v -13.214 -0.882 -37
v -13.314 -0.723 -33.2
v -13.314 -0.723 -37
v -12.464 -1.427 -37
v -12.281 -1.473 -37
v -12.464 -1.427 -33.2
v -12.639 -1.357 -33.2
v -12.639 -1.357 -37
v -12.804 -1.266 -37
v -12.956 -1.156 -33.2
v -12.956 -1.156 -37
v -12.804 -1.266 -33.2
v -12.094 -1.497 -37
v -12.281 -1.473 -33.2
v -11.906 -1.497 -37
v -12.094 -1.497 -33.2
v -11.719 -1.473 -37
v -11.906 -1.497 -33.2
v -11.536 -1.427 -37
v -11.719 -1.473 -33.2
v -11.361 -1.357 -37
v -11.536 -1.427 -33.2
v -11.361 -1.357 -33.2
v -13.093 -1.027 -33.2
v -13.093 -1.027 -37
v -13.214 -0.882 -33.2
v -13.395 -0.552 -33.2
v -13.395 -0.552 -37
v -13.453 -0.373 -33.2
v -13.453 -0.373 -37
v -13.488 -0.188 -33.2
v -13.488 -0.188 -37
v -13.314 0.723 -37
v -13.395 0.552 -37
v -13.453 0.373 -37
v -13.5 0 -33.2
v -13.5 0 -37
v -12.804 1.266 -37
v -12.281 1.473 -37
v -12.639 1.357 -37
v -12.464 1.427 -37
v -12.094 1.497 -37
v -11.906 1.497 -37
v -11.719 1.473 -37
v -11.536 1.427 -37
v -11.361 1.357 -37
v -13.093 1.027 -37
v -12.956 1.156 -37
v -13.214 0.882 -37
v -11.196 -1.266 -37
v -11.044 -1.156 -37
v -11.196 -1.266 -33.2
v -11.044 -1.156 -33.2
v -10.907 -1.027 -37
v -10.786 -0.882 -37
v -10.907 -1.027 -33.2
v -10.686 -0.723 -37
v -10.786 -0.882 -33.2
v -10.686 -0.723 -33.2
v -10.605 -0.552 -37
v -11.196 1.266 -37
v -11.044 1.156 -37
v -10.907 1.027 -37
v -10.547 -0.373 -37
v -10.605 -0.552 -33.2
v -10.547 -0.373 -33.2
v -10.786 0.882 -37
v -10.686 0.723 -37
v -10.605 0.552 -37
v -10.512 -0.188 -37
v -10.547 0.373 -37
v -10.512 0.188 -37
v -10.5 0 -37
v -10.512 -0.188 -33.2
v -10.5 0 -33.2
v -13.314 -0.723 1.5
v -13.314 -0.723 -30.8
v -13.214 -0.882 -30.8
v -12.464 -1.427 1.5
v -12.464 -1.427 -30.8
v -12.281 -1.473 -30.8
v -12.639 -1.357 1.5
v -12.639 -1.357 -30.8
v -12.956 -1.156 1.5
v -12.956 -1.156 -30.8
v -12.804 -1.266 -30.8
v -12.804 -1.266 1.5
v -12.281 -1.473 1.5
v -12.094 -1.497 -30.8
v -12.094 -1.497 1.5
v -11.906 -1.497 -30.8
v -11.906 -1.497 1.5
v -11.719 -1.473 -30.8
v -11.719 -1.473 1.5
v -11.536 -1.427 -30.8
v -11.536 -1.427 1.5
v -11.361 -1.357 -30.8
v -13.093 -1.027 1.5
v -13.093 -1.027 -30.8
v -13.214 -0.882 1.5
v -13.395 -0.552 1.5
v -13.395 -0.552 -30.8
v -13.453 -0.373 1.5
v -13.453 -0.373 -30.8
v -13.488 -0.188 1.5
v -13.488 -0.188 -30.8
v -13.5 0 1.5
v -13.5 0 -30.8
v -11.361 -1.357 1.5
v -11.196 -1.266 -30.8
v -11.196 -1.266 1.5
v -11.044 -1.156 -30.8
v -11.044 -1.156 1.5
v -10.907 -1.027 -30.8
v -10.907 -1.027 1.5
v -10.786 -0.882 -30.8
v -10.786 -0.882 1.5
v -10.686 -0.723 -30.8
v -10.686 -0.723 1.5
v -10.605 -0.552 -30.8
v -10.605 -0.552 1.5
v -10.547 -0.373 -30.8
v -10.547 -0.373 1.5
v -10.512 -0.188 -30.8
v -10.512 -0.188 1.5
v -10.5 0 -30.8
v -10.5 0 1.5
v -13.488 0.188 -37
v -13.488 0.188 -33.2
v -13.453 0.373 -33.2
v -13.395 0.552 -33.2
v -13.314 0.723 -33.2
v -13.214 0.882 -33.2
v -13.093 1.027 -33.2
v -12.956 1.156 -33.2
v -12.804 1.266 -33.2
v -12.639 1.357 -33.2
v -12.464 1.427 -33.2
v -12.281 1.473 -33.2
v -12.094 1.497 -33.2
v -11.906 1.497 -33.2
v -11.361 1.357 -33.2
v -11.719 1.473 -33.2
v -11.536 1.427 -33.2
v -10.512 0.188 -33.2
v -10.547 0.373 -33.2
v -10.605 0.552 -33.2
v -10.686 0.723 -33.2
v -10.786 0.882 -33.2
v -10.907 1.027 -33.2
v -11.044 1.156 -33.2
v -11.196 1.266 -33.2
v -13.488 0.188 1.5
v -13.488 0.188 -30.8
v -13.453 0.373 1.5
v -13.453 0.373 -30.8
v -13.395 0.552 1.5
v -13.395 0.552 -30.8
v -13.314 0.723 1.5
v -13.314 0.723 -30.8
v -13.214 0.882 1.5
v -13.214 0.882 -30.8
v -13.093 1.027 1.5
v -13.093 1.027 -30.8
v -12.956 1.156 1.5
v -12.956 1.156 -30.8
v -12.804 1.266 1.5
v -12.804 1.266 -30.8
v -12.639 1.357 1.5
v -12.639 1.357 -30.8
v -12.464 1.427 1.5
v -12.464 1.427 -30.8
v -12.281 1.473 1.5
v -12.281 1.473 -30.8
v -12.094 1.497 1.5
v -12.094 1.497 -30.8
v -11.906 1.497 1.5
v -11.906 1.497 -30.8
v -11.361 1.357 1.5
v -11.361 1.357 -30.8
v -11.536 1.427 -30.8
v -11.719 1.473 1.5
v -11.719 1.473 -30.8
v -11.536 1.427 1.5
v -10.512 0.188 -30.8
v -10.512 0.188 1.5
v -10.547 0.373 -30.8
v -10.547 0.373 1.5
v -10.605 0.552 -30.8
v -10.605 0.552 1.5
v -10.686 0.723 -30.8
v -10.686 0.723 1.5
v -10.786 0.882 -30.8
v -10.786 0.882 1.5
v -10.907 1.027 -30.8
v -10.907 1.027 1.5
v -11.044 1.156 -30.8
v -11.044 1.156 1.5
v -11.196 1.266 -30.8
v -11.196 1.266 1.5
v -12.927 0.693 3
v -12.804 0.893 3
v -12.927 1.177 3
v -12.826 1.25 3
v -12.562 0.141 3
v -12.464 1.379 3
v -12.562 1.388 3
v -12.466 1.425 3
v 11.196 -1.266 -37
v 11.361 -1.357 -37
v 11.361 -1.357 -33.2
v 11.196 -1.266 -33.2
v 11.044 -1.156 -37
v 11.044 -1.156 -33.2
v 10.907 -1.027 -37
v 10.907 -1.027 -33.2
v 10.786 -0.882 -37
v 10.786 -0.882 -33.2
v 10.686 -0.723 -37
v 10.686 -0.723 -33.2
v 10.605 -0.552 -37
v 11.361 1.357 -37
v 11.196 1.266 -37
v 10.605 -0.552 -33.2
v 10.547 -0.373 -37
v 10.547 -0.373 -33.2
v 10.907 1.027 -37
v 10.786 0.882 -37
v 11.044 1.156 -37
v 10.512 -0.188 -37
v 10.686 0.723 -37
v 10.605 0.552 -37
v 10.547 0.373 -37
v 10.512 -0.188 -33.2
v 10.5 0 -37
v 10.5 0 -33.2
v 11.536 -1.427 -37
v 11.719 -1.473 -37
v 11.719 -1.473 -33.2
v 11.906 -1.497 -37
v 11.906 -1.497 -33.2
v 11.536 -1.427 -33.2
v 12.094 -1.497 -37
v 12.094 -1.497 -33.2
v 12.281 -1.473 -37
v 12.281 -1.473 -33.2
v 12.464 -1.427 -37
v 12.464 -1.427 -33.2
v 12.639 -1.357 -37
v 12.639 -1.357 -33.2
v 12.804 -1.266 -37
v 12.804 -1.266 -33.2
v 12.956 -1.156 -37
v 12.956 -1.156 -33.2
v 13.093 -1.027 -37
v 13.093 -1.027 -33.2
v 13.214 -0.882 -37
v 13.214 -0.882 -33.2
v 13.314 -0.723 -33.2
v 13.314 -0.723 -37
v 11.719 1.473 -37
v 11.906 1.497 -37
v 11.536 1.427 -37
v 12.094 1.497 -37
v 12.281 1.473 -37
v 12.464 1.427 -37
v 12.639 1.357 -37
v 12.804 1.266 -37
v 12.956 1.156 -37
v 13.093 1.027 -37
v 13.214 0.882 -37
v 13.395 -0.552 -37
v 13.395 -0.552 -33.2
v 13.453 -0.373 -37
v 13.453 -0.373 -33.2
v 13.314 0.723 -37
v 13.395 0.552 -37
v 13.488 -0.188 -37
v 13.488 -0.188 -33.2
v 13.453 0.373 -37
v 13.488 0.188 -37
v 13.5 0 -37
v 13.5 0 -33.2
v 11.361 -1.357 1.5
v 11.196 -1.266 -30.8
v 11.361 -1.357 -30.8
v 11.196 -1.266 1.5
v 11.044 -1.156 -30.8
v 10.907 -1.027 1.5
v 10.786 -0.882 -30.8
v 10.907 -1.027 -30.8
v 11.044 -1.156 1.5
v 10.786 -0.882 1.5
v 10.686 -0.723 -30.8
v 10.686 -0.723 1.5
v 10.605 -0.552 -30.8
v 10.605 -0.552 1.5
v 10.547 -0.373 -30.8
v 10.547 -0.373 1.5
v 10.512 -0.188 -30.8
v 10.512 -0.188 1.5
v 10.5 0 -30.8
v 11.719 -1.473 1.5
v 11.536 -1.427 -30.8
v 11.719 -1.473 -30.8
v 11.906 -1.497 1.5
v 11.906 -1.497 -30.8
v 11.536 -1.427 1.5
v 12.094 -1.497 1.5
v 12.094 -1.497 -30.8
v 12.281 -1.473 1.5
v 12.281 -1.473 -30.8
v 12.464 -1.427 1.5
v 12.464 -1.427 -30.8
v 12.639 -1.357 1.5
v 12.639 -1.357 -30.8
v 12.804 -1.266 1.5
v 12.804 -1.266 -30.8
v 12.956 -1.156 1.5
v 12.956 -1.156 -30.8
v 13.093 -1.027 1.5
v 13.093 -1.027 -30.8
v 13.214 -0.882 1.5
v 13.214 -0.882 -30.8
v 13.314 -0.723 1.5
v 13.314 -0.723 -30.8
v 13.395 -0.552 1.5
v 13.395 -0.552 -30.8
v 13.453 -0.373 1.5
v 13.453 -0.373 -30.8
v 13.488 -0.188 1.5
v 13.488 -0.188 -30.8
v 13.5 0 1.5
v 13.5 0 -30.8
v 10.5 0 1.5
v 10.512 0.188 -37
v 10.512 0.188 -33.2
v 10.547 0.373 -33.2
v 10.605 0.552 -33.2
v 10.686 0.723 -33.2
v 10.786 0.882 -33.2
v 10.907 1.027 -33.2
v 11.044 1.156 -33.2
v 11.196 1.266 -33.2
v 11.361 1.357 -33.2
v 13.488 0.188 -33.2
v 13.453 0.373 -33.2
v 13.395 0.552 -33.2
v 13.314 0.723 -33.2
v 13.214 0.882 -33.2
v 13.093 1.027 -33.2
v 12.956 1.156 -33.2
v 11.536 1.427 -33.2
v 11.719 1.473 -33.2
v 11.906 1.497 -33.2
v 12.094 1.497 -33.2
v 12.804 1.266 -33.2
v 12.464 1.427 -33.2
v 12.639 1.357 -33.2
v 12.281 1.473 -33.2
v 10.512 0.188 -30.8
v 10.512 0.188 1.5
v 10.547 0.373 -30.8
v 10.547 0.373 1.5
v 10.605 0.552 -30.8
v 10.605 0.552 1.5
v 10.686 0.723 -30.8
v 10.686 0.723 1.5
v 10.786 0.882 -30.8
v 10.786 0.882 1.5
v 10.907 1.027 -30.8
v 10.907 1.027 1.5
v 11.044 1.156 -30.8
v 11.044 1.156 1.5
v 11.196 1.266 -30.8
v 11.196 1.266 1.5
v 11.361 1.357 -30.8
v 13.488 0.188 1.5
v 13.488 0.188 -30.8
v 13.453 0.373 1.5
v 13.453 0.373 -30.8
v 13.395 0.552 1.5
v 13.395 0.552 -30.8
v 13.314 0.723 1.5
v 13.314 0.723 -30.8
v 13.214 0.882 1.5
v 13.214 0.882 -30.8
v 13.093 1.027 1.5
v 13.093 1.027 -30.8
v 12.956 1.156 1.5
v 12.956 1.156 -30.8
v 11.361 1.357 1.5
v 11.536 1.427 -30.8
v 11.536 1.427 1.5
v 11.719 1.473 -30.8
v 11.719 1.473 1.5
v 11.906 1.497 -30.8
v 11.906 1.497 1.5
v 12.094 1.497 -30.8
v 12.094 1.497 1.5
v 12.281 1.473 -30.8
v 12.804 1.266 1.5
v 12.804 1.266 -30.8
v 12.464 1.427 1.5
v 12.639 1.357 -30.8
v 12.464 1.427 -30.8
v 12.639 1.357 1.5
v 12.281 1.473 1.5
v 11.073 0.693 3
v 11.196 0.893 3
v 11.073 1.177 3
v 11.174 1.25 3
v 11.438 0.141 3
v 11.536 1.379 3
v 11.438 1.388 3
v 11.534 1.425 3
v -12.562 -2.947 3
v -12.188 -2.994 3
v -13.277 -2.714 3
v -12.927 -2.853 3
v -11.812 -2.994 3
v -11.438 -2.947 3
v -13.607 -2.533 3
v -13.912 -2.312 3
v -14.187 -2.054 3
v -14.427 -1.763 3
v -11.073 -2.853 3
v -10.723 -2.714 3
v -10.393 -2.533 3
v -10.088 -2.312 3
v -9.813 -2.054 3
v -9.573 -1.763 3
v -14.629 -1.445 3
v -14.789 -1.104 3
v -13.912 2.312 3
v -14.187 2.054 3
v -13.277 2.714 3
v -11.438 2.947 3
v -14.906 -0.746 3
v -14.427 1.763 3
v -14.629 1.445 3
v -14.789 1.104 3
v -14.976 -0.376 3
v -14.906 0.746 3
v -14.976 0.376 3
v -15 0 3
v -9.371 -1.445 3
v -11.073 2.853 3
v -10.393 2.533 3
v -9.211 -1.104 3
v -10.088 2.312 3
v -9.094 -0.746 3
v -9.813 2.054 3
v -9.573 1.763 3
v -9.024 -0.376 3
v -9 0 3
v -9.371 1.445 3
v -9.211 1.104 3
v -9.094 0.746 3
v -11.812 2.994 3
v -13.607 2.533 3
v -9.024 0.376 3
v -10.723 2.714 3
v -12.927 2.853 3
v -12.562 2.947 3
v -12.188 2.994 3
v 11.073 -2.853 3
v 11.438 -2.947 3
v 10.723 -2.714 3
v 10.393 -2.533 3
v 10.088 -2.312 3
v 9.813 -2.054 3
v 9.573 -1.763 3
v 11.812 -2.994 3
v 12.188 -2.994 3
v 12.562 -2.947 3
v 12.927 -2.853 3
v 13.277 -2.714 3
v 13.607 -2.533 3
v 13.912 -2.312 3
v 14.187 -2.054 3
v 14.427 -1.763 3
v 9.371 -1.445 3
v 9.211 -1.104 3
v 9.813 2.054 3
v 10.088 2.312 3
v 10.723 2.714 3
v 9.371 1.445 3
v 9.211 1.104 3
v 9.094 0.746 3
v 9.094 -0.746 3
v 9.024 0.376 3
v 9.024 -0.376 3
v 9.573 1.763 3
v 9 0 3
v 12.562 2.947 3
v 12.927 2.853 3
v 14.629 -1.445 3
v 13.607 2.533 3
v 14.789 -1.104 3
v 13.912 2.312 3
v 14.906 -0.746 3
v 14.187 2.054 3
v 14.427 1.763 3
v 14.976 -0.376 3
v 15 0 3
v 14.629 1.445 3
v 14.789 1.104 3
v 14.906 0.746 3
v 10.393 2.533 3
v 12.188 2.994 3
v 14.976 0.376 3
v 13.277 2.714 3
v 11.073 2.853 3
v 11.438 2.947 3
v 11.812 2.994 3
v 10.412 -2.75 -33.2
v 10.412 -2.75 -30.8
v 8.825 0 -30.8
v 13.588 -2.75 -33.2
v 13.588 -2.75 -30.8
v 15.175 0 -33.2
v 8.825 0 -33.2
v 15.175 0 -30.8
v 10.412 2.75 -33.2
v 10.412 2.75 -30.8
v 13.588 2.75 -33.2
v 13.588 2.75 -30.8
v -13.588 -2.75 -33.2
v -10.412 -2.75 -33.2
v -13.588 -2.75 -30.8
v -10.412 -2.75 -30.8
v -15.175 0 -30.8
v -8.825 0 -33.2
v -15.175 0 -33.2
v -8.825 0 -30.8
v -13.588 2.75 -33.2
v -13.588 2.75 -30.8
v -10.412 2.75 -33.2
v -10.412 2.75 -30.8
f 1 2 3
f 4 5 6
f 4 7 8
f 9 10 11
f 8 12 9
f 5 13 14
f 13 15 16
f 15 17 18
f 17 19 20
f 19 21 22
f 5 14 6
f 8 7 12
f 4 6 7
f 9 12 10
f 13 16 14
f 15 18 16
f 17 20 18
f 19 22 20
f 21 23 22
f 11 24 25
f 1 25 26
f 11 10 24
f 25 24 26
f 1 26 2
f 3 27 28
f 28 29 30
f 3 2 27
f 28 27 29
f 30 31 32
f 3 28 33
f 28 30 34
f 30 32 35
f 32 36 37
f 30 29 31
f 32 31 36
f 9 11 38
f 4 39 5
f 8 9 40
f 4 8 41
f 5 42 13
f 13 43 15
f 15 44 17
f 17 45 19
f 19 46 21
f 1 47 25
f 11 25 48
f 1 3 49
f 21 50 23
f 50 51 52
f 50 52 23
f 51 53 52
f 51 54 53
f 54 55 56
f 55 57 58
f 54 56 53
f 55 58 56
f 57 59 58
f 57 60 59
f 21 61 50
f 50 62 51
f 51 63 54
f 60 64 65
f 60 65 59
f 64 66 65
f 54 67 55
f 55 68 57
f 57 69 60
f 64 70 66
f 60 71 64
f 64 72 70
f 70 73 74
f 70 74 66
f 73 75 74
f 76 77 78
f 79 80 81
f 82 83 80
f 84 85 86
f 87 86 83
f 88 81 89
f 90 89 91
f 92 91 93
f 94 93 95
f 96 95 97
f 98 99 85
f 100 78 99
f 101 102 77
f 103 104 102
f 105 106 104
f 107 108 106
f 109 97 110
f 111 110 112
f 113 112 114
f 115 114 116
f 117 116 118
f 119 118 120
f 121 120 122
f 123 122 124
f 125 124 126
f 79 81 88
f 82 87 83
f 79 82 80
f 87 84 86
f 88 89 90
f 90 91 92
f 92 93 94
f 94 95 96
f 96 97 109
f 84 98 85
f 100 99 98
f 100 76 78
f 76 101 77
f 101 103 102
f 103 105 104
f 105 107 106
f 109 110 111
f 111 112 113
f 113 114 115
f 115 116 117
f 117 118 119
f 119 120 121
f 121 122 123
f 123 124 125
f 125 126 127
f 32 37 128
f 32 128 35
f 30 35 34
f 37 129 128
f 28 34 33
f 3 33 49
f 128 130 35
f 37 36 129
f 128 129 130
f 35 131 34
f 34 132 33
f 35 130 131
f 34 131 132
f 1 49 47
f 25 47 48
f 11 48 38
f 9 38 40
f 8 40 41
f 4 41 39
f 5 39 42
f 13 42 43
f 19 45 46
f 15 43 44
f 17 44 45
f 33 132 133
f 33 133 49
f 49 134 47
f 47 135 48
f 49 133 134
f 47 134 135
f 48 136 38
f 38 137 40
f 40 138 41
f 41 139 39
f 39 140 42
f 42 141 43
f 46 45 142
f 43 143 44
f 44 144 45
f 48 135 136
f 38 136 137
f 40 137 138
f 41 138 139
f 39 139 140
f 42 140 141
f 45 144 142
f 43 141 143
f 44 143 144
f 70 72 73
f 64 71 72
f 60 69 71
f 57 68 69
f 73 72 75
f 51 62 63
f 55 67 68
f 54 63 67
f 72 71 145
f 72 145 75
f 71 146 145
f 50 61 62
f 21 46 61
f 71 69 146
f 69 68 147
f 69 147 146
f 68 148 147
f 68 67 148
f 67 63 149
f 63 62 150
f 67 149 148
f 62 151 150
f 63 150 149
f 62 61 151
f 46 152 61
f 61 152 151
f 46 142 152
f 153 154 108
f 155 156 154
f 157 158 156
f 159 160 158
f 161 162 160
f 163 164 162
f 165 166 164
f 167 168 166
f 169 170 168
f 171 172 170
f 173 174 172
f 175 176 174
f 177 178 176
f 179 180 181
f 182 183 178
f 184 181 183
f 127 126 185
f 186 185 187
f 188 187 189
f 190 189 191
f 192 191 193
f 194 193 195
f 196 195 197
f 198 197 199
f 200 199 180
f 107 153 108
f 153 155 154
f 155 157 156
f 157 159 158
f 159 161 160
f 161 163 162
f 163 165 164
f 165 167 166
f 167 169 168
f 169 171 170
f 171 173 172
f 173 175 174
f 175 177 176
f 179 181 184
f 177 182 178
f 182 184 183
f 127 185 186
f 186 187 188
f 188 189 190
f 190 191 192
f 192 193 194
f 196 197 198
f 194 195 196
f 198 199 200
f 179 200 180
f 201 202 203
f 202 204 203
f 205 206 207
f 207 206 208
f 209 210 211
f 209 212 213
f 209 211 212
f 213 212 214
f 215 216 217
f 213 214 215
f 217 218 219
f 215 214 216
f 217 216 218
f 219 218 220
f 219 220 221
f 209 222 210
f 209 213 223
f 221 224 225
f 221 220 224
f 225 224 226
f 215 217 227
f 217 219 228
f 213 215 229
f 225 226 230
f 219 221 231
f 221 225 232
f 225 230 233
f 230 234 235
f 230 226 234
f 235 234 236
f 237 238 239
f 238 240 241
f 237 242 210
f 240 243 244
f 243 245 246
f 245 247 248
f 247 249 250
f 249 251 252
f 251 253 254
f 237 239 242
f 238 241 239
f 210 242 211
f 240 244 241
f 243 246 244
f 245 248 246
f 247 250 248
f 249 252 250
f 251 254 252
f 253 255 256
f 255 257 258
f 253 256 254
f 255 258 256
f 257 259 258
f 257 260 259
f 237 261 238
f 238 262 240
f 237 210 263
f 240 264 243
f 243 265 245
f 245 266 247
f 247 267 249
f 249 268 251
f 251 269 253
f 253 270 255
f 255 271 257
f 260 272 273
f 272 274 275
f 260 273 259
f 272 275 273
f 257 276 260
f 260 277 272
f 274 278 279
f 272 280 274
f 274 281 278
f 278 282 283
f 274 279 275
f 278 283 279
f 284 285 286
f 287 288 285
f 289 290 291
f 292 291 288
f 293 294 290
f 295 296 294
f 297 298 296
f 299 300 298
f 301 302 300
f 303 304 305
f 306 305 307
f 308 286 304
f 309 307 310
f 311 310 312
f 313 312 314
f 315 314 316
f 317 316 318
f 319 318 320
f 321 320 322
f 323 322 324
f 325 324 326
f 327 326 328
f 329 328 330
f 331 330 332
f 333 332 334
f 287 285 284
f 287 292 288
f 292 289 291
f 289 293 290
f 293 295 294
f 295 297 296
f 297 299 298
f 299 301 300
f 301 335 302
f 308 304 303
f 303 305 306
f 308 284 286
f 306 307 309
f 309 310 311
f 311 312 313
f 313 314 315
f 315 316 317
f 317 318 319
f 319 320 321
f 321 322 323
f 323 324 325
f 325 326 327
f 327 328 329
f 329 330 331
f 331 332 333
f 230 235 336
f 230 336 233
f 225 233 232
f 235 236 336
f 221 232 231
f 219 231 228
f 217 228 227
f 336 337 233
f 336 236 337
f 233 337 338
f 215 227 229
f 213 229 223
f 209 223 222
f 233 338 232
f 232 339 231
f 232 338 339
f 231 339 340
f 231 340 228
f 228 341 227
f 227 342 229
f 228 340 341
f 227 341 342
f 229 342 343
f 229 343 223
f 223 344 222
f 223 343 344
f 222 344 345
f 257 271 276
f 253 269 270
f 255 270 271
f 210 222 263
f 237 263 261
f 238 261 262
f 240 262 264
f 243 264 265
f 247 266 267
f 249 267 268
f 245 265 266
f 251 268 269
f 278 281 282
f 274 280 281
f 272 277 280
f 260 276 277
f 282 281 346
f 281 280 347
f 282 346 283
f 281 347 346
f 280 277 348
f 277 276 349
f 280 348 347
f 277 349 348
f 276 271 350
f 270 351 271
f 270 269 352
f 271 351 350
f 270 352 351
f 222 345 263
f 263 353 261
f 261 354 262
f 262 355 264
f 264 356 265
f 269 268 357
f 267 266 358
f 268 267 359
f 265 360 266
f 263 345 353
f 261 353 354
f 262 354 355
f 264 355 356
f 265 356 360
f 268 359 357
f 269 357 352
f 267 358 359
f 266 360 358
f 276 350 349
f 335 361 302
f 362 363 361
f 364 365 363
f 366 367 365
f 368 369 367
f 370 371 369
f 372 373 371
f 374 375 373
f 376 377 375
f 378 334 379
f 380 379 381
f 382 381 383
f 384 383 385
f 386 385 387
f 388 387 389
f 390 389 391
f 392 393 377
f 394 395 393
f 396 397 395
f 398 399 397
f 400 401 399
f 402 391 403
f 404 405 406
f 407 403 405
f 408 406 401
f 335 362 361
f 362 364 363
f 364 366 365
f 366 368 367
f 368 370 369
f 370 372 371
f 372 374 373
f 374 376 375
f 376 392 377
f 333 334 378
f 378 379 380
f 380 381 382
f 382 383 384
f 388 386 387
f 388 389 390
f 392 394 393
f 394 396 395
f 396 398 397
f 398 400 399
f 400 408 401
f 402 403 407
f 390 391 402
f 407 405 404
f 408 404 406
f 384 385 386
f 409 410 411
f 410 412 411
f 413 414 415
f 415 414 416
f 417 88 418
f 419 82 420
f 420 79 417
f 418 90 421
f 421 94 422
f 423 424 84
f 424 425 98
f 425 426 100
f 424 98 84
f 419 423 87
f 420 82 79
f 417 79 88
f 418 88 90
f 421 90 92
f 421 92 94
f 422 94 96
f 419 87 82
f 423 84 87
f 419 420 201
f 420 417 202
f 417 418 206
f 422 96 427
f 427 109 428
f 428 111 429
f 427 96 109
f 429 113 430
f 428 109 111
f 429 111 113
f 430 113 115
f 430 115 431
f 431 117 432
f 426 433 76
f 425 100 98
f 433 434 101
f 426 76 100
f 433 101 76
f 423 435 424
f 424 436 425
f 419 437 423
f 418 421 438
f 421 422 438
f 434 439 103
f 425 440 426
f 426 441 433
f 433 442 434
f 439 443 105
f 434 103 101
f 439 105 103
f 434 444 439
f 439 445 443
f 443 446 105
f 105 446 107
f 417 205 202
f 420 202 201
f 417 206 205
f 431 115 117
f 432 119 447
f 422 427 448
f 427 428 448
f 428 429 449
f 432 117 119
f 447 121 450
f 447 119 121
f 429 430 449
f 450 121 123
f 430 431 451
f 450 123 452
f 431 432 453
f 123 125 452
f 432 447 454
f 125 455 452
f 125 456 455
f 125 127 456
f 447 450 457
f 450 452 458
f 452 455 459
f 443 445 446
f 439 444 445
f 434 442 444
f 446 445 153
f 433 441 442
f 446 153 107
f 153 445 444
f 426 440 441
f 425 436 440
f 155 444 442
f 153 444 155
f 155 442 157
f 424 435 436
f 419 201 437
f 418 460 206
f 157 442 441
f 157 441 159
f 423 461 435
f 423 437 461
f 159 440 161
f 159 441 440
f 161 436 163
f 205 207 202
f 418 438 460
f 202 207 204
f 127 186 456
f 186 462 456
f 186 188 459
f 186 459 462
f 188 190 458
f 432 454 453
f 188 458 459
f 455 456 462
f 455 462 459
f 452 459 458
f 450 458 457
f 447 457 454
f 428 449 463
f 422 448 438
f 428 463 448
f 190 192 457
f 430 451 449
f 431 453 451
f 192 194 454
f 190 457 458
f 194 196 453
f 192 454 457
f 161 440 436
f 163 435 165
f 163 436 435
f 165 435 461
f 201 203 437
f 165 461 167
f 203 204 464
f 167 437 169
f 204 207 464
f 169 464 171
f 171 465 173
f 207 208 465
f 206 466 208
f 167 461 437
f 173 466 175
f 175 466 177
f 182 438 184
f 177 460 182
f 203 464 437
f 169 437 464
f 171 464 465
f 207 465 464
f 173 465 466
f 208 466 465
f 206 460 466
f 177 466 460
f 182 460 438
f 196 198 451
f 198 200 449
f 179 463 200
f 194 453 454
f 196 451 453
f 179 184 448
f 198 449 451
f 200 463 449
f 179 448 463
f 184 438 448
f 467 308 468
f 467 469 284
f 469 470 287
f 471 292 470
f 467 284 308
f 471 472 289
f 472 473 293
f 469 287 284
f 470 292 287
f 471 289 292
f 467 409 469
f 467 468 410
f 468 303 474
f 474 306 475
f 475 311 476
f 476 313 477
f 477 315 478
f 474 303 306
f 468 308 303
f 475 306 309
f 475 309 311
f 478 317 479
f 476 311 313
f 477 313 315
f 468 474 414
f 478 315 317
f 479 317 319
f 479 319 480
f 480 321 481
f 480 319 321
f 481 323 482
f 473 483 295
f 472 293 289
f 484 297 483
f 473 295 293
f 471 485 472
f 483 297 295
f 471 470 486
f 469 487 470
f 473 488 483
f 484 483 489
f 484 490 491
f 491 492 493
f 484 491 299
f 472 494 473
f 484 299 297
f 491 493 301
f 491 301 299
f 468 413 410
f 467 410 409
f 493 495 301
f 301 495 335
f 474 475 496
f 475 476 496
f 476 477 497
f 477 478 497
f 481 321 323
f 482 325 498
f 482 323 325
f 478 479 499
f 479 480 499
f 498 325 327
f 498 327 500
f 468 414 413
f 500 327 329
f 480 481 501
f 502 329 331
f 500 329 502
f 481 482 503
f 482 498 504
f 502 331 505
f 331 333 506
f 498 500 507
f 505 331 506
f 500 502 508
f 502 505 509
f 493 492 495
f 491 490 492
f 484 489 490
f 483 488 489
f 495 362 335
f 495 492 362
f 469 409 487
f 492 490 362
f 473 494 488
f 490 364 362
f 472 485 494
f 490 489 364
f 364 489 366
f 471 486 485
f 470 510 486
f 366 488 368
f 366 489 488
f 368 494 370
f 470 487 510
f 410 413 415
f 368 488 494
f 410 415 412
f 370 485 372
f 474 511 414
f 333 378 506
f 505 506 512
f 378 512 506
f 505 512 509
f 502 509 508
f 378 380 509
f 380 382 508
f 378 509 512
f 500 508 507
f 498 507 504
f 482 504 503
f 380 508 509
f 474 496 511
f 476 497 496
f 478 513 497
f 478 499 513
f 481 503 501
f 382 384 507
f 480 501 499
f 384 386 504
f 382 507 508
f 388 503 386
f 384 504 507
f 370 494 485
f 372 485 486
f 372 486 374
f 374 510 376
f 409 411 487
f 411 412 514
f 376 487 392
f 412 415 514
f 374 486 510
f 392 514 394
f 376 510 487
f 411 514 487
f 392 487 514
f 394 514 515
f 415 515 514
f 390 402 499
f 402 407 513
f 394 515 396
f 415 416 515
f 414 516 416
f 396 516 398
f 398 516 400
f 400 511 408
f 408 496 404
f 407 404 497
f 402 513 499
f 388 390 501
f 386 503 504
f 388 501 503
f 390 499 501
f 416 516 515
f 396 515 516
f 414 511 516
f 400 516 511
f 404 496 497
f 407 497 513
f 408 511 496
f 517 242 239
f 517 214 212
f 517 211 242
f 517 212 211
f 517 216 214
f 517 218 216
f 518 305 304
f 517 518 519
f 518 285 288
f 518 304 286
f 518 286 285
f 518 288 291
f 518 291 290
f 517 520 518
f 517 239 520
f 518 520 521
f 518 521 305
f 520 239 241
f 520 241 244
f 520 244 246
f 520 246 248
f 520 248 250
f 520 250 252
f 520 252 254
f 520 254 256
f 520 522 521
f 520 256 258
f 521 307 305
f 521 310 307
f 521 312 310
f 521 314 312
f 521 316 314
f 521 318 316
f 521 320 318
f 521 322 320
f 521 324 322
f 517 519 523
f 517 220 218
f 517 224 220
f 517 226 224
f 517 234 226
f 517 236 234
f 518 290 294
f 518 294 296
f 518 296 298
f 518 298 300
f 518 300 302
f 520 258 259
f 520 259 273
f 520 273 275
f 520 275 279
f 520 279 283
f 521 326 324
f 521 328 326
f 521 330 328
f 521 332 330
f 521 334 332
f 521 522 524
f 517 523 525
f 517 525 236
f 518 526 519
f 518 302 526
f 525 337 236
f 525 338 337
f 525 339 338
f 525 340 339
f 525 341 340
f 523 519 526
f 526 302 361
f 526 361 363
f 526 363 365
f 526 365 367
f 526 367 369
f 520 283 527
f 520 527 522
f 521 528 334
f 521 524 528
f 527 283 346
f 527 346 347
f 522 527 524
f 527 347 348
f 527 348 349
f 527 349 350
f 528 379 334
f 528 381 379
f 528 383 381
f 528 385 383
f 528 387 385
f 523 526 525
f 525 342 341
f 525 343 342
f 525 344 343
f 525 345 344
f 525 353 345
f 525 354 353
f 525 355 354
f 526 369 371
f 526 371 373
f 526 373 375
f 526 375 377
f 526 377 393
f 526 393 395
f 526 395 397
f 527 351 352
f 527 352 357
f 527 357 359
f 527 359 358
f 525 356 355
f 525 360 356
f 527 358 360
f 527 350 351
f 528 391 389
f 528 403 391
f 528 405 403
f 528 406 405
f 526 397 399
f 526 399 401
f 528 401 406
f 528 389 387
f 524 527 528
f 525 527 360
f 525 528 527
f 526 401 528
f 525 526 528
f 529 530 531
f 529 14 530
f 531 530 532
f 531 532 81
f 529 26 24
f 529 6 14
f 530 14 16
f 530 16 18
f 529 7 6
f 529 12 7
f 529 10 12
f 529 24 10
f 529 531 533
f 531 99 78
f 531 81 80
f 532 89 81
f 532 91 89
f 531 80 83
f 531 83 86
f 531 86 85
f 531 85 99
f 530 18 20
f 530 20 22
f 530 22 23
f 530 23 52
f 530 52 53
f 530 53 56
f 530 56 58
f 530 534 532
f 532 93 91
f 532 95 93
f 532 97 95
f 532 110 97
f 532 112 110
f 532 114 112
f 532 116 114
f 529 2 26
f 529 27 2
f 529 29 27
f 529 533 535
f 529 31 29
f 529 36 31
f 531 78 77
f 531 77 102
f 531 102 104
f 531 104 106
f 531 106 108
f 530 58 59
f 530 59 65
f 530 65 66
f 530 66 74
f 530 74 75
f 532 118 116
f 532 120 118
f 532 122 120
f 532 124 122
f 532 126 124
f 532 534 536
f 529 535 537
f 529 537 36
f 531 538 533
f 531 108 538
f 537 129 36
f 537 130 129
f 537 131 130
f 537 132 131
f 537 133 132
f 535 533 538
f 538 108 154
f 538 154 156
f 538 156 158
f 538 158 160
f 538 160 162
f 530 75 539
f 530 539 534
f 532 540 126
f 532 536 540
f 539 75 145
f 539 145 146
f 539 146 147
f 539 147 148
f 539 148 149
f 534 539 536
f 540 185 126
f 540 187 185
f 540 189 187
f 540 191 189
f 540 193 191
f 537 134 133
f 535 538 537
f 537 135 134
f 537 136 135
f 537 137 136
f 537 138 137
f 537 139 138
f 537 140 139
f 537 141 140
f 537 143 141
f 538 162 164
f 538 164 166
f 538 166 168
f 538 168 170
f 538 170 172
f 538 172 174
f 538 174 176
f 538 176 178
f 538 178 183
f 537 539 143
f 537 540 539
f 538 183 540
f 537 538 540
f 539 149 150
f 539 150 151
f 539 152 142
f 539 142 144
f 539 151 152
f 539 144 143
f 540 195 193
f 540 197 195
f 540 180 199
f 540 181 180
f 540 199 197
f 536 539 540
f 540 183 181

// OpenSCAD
$fn = 50;

difference() {
	union() {
		translate(v = [-12, 0, 3]) {
			rotate(a = [0, 0, 0]) {
				difference() {
					union() {
						translate(v = [0, 0, -40.0]) {
							cylinder(h = 40, r = 1.5);
						}
						translate(v = [0, 0, -1.5]) {
							cylinder(h = 1.5, r1 = 1.5, r2 = 3);
						}
					}
					union();
				}
			}
		}
		translate(v = [-12, 0, -33.2]) {
			rotate(a = [0, 0, 0]) {
				difference() {
					union() {
						linear_extrude(height = 2.4) {
							polygon(points = [[3.1754264805429417, 0.0], [1.5877132402714713, 2.75], [-1.5877132402714702, 2.7500000000000004], [-3.1754264805429417, 3.888775875324659e-16], [-1.5877132402714722, -2.7499999999999996], [1.5877132402714687, -2.7500000000000013]]);
						}
					}
					union();
				}
			}
		}
		translate(v = [12, 0, 3]) {
			rotate(a = [0, 0, 0]) {
				difference() {
					union() {
						translate(v = [0, 0, -40.0]) {
							cylinder(h = 40, r = 1.5);
						}
						translate(v = [0, 0, -1.5]) {
							cylinder(h = 1.5, r1 = 1.5, r2 = 3);
						}
					}
					union();
				}
			}
		}
		translate(v = [12, 0, -33.2]) {
			rotate(a = [0, 0, 0]) {
				difference() {
					union() {
						linear_extrude(height = 2.4) {
							polygon(points = [[3.1754264805429417, 0.0], [1.5877132402714713, 2.75], [-1.5877132402714702, 2.7500000000000004], [-3.1754264805429417, 3.888775875324659e-16], [-1.5877132402714722, -2.7499999999999996], [1.5877132402714687, -2.7500000000000013]]);
						}
					}
					union();
				}
			}
		}
	}
	union();
}
